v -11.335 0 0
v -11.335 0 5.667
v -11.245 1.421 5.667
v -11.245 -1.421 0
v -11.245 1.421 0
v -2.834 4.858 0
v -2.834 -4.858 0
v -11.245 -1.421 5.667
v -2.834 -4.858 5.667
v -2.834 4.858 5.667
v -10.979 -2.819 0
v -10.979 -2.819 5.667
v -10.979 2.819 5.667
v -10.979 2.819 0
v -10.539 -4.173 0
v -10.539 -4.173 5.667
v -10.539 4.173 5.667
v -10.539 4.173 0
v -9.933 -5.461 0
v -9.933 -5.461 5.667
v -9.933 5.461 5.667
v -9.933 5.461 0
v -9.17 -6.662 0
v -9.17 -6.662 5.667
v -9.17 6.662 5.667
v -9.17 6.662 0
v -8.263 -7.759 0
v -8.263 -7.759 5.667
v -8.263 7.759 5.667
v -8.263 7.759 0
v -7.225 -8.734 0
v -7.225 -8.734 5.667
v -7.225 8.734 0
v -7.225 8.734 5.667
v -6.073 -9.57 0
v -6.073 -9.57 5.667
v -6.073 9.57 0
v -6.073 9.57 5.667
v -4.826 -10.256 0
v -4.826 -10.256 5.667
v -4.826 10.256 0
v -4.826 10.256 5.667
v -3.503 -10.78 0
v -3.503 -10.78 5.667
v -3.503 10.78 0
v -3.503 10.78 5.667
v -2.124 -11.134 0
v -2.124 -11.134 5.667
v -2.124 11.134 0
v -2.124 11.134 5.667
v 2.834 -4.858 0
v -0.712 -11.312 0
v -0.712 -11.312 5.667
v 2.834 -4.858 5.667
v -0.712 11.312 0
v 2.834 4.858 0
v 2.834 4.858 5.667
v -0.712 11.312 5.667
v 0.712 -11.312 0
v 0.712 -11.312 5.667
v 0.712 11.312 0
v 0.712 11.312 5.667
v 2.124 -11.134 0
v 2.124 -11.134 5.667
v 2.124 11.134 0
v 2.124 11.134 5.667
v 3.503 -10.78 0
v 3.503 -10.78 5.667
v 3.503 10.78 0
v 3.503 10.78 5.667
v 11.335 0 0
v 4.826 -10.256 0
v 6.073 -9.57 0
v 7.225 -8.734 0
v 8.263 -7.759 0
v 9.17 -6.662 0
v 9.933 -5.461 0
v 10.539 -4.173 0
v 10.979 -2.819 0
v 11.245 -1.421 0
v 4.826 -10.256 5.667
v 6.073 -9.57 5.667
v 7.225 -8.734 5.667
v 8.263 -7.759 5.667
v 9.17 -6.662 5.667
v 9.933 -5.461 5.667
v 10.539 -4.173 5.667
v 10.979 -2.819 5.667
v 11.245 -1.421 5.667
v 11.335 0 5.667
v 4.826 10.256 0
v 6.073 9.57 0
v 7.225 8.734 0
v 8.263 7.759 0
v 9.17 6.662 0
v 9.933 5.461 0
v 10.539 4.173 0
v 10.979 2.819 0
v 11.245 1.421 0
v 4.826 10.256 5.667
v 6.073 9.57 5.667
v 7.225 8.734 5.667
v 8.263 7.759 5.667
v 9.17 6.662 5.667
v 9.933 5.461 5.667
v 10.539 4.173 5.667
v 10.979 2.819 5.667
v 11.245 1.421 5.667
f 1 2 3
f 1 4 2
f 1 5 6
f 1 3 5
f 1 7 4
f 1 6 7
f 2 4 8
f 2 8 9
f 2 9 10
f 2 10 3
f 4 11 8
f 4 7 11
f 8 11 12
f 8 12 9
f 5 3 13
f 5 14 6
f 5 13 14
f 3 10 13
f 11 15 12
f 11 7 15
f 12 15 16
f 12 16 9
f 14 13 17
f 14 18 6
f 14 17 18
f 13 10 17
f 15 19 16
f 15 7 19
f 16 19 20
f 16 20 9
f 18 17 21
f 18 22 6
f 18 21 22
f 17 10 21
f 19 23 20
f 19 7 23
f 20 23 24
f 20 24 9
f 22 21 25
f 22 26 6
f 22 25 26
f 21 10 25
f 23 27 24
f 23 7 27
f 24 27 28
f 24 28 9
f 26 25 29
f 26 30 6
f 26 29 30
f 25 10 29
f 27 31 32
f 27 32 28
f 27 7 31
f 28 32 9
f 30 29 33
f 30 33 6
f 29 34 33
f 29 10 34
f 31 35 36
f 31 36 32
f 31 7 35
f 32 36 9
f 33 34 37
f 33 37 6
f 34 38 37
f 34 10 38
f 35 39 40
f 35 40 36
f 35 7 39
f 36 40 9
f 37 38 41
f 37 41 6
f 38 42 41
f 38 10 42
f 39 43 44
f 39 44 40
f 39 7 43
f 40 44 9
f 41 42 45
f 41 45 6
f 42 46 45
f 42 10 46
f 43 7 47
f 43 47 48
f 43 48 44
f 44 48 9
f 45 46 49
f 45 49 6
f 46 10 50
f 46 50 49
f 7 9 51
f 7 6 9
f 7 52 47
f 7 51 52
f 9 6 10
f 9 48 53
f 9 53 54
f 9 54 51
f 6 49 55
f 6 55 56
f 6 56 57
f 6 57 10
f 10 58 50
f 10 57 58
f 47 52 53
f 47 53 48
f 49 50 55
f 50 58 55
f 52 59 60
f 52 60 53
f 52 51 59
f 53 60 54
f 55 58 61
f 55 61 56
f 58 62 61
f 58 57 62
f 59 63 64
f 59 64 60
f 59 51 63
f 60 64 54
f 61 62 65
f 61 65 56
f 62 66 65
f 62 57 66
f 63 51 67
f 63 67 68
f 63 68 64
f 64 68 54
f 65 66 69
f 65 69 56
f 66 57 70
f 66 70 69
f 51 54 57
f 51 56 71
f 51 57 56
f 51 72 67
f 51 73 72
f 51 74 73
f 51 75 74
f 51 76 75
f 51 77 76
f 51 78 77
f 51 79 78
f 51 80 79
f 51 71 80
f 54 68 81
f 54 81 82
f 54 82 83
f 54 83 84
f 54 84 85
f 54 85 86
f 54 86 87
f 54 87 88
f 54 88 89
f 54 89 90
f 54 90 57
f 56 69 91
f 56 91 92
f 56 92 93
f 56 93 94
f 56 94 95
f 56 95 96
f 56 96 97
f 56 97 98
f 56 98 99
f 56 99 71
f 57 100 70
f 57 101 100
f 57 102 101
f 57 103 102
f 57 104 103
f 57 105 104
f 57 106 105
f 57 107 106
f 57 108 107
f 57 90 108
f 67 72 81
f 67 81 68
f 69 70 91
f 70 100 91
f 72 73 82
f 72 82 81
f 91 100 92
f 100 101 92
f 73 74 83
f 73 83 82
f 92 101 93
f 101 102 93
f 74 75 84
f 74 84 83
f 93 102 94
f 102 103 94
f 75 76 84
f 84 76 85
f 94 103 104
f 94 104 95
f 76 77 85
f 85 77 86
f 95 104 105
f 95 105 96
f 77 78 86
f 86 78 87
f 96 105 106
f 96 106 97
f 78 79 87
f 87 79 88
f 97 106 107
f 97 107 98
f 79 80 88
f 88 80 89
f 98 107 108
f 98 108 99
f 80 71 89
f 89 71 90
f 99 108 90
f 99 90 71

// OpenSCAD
$fn=50;
INCH=25.4*1.02;
module normcube(c) {
    // normalize a cube to be positioned around the origin, like a cylinder.
    translate([-c.x/2,-c.y/2,0]) cube(c);
}

difference() {
  cylinder(7/8*INCH/4, d=7/8*INCH);
  normcube([7/32*INCH,6/16*INCH,7/8*INCH]);
}  
